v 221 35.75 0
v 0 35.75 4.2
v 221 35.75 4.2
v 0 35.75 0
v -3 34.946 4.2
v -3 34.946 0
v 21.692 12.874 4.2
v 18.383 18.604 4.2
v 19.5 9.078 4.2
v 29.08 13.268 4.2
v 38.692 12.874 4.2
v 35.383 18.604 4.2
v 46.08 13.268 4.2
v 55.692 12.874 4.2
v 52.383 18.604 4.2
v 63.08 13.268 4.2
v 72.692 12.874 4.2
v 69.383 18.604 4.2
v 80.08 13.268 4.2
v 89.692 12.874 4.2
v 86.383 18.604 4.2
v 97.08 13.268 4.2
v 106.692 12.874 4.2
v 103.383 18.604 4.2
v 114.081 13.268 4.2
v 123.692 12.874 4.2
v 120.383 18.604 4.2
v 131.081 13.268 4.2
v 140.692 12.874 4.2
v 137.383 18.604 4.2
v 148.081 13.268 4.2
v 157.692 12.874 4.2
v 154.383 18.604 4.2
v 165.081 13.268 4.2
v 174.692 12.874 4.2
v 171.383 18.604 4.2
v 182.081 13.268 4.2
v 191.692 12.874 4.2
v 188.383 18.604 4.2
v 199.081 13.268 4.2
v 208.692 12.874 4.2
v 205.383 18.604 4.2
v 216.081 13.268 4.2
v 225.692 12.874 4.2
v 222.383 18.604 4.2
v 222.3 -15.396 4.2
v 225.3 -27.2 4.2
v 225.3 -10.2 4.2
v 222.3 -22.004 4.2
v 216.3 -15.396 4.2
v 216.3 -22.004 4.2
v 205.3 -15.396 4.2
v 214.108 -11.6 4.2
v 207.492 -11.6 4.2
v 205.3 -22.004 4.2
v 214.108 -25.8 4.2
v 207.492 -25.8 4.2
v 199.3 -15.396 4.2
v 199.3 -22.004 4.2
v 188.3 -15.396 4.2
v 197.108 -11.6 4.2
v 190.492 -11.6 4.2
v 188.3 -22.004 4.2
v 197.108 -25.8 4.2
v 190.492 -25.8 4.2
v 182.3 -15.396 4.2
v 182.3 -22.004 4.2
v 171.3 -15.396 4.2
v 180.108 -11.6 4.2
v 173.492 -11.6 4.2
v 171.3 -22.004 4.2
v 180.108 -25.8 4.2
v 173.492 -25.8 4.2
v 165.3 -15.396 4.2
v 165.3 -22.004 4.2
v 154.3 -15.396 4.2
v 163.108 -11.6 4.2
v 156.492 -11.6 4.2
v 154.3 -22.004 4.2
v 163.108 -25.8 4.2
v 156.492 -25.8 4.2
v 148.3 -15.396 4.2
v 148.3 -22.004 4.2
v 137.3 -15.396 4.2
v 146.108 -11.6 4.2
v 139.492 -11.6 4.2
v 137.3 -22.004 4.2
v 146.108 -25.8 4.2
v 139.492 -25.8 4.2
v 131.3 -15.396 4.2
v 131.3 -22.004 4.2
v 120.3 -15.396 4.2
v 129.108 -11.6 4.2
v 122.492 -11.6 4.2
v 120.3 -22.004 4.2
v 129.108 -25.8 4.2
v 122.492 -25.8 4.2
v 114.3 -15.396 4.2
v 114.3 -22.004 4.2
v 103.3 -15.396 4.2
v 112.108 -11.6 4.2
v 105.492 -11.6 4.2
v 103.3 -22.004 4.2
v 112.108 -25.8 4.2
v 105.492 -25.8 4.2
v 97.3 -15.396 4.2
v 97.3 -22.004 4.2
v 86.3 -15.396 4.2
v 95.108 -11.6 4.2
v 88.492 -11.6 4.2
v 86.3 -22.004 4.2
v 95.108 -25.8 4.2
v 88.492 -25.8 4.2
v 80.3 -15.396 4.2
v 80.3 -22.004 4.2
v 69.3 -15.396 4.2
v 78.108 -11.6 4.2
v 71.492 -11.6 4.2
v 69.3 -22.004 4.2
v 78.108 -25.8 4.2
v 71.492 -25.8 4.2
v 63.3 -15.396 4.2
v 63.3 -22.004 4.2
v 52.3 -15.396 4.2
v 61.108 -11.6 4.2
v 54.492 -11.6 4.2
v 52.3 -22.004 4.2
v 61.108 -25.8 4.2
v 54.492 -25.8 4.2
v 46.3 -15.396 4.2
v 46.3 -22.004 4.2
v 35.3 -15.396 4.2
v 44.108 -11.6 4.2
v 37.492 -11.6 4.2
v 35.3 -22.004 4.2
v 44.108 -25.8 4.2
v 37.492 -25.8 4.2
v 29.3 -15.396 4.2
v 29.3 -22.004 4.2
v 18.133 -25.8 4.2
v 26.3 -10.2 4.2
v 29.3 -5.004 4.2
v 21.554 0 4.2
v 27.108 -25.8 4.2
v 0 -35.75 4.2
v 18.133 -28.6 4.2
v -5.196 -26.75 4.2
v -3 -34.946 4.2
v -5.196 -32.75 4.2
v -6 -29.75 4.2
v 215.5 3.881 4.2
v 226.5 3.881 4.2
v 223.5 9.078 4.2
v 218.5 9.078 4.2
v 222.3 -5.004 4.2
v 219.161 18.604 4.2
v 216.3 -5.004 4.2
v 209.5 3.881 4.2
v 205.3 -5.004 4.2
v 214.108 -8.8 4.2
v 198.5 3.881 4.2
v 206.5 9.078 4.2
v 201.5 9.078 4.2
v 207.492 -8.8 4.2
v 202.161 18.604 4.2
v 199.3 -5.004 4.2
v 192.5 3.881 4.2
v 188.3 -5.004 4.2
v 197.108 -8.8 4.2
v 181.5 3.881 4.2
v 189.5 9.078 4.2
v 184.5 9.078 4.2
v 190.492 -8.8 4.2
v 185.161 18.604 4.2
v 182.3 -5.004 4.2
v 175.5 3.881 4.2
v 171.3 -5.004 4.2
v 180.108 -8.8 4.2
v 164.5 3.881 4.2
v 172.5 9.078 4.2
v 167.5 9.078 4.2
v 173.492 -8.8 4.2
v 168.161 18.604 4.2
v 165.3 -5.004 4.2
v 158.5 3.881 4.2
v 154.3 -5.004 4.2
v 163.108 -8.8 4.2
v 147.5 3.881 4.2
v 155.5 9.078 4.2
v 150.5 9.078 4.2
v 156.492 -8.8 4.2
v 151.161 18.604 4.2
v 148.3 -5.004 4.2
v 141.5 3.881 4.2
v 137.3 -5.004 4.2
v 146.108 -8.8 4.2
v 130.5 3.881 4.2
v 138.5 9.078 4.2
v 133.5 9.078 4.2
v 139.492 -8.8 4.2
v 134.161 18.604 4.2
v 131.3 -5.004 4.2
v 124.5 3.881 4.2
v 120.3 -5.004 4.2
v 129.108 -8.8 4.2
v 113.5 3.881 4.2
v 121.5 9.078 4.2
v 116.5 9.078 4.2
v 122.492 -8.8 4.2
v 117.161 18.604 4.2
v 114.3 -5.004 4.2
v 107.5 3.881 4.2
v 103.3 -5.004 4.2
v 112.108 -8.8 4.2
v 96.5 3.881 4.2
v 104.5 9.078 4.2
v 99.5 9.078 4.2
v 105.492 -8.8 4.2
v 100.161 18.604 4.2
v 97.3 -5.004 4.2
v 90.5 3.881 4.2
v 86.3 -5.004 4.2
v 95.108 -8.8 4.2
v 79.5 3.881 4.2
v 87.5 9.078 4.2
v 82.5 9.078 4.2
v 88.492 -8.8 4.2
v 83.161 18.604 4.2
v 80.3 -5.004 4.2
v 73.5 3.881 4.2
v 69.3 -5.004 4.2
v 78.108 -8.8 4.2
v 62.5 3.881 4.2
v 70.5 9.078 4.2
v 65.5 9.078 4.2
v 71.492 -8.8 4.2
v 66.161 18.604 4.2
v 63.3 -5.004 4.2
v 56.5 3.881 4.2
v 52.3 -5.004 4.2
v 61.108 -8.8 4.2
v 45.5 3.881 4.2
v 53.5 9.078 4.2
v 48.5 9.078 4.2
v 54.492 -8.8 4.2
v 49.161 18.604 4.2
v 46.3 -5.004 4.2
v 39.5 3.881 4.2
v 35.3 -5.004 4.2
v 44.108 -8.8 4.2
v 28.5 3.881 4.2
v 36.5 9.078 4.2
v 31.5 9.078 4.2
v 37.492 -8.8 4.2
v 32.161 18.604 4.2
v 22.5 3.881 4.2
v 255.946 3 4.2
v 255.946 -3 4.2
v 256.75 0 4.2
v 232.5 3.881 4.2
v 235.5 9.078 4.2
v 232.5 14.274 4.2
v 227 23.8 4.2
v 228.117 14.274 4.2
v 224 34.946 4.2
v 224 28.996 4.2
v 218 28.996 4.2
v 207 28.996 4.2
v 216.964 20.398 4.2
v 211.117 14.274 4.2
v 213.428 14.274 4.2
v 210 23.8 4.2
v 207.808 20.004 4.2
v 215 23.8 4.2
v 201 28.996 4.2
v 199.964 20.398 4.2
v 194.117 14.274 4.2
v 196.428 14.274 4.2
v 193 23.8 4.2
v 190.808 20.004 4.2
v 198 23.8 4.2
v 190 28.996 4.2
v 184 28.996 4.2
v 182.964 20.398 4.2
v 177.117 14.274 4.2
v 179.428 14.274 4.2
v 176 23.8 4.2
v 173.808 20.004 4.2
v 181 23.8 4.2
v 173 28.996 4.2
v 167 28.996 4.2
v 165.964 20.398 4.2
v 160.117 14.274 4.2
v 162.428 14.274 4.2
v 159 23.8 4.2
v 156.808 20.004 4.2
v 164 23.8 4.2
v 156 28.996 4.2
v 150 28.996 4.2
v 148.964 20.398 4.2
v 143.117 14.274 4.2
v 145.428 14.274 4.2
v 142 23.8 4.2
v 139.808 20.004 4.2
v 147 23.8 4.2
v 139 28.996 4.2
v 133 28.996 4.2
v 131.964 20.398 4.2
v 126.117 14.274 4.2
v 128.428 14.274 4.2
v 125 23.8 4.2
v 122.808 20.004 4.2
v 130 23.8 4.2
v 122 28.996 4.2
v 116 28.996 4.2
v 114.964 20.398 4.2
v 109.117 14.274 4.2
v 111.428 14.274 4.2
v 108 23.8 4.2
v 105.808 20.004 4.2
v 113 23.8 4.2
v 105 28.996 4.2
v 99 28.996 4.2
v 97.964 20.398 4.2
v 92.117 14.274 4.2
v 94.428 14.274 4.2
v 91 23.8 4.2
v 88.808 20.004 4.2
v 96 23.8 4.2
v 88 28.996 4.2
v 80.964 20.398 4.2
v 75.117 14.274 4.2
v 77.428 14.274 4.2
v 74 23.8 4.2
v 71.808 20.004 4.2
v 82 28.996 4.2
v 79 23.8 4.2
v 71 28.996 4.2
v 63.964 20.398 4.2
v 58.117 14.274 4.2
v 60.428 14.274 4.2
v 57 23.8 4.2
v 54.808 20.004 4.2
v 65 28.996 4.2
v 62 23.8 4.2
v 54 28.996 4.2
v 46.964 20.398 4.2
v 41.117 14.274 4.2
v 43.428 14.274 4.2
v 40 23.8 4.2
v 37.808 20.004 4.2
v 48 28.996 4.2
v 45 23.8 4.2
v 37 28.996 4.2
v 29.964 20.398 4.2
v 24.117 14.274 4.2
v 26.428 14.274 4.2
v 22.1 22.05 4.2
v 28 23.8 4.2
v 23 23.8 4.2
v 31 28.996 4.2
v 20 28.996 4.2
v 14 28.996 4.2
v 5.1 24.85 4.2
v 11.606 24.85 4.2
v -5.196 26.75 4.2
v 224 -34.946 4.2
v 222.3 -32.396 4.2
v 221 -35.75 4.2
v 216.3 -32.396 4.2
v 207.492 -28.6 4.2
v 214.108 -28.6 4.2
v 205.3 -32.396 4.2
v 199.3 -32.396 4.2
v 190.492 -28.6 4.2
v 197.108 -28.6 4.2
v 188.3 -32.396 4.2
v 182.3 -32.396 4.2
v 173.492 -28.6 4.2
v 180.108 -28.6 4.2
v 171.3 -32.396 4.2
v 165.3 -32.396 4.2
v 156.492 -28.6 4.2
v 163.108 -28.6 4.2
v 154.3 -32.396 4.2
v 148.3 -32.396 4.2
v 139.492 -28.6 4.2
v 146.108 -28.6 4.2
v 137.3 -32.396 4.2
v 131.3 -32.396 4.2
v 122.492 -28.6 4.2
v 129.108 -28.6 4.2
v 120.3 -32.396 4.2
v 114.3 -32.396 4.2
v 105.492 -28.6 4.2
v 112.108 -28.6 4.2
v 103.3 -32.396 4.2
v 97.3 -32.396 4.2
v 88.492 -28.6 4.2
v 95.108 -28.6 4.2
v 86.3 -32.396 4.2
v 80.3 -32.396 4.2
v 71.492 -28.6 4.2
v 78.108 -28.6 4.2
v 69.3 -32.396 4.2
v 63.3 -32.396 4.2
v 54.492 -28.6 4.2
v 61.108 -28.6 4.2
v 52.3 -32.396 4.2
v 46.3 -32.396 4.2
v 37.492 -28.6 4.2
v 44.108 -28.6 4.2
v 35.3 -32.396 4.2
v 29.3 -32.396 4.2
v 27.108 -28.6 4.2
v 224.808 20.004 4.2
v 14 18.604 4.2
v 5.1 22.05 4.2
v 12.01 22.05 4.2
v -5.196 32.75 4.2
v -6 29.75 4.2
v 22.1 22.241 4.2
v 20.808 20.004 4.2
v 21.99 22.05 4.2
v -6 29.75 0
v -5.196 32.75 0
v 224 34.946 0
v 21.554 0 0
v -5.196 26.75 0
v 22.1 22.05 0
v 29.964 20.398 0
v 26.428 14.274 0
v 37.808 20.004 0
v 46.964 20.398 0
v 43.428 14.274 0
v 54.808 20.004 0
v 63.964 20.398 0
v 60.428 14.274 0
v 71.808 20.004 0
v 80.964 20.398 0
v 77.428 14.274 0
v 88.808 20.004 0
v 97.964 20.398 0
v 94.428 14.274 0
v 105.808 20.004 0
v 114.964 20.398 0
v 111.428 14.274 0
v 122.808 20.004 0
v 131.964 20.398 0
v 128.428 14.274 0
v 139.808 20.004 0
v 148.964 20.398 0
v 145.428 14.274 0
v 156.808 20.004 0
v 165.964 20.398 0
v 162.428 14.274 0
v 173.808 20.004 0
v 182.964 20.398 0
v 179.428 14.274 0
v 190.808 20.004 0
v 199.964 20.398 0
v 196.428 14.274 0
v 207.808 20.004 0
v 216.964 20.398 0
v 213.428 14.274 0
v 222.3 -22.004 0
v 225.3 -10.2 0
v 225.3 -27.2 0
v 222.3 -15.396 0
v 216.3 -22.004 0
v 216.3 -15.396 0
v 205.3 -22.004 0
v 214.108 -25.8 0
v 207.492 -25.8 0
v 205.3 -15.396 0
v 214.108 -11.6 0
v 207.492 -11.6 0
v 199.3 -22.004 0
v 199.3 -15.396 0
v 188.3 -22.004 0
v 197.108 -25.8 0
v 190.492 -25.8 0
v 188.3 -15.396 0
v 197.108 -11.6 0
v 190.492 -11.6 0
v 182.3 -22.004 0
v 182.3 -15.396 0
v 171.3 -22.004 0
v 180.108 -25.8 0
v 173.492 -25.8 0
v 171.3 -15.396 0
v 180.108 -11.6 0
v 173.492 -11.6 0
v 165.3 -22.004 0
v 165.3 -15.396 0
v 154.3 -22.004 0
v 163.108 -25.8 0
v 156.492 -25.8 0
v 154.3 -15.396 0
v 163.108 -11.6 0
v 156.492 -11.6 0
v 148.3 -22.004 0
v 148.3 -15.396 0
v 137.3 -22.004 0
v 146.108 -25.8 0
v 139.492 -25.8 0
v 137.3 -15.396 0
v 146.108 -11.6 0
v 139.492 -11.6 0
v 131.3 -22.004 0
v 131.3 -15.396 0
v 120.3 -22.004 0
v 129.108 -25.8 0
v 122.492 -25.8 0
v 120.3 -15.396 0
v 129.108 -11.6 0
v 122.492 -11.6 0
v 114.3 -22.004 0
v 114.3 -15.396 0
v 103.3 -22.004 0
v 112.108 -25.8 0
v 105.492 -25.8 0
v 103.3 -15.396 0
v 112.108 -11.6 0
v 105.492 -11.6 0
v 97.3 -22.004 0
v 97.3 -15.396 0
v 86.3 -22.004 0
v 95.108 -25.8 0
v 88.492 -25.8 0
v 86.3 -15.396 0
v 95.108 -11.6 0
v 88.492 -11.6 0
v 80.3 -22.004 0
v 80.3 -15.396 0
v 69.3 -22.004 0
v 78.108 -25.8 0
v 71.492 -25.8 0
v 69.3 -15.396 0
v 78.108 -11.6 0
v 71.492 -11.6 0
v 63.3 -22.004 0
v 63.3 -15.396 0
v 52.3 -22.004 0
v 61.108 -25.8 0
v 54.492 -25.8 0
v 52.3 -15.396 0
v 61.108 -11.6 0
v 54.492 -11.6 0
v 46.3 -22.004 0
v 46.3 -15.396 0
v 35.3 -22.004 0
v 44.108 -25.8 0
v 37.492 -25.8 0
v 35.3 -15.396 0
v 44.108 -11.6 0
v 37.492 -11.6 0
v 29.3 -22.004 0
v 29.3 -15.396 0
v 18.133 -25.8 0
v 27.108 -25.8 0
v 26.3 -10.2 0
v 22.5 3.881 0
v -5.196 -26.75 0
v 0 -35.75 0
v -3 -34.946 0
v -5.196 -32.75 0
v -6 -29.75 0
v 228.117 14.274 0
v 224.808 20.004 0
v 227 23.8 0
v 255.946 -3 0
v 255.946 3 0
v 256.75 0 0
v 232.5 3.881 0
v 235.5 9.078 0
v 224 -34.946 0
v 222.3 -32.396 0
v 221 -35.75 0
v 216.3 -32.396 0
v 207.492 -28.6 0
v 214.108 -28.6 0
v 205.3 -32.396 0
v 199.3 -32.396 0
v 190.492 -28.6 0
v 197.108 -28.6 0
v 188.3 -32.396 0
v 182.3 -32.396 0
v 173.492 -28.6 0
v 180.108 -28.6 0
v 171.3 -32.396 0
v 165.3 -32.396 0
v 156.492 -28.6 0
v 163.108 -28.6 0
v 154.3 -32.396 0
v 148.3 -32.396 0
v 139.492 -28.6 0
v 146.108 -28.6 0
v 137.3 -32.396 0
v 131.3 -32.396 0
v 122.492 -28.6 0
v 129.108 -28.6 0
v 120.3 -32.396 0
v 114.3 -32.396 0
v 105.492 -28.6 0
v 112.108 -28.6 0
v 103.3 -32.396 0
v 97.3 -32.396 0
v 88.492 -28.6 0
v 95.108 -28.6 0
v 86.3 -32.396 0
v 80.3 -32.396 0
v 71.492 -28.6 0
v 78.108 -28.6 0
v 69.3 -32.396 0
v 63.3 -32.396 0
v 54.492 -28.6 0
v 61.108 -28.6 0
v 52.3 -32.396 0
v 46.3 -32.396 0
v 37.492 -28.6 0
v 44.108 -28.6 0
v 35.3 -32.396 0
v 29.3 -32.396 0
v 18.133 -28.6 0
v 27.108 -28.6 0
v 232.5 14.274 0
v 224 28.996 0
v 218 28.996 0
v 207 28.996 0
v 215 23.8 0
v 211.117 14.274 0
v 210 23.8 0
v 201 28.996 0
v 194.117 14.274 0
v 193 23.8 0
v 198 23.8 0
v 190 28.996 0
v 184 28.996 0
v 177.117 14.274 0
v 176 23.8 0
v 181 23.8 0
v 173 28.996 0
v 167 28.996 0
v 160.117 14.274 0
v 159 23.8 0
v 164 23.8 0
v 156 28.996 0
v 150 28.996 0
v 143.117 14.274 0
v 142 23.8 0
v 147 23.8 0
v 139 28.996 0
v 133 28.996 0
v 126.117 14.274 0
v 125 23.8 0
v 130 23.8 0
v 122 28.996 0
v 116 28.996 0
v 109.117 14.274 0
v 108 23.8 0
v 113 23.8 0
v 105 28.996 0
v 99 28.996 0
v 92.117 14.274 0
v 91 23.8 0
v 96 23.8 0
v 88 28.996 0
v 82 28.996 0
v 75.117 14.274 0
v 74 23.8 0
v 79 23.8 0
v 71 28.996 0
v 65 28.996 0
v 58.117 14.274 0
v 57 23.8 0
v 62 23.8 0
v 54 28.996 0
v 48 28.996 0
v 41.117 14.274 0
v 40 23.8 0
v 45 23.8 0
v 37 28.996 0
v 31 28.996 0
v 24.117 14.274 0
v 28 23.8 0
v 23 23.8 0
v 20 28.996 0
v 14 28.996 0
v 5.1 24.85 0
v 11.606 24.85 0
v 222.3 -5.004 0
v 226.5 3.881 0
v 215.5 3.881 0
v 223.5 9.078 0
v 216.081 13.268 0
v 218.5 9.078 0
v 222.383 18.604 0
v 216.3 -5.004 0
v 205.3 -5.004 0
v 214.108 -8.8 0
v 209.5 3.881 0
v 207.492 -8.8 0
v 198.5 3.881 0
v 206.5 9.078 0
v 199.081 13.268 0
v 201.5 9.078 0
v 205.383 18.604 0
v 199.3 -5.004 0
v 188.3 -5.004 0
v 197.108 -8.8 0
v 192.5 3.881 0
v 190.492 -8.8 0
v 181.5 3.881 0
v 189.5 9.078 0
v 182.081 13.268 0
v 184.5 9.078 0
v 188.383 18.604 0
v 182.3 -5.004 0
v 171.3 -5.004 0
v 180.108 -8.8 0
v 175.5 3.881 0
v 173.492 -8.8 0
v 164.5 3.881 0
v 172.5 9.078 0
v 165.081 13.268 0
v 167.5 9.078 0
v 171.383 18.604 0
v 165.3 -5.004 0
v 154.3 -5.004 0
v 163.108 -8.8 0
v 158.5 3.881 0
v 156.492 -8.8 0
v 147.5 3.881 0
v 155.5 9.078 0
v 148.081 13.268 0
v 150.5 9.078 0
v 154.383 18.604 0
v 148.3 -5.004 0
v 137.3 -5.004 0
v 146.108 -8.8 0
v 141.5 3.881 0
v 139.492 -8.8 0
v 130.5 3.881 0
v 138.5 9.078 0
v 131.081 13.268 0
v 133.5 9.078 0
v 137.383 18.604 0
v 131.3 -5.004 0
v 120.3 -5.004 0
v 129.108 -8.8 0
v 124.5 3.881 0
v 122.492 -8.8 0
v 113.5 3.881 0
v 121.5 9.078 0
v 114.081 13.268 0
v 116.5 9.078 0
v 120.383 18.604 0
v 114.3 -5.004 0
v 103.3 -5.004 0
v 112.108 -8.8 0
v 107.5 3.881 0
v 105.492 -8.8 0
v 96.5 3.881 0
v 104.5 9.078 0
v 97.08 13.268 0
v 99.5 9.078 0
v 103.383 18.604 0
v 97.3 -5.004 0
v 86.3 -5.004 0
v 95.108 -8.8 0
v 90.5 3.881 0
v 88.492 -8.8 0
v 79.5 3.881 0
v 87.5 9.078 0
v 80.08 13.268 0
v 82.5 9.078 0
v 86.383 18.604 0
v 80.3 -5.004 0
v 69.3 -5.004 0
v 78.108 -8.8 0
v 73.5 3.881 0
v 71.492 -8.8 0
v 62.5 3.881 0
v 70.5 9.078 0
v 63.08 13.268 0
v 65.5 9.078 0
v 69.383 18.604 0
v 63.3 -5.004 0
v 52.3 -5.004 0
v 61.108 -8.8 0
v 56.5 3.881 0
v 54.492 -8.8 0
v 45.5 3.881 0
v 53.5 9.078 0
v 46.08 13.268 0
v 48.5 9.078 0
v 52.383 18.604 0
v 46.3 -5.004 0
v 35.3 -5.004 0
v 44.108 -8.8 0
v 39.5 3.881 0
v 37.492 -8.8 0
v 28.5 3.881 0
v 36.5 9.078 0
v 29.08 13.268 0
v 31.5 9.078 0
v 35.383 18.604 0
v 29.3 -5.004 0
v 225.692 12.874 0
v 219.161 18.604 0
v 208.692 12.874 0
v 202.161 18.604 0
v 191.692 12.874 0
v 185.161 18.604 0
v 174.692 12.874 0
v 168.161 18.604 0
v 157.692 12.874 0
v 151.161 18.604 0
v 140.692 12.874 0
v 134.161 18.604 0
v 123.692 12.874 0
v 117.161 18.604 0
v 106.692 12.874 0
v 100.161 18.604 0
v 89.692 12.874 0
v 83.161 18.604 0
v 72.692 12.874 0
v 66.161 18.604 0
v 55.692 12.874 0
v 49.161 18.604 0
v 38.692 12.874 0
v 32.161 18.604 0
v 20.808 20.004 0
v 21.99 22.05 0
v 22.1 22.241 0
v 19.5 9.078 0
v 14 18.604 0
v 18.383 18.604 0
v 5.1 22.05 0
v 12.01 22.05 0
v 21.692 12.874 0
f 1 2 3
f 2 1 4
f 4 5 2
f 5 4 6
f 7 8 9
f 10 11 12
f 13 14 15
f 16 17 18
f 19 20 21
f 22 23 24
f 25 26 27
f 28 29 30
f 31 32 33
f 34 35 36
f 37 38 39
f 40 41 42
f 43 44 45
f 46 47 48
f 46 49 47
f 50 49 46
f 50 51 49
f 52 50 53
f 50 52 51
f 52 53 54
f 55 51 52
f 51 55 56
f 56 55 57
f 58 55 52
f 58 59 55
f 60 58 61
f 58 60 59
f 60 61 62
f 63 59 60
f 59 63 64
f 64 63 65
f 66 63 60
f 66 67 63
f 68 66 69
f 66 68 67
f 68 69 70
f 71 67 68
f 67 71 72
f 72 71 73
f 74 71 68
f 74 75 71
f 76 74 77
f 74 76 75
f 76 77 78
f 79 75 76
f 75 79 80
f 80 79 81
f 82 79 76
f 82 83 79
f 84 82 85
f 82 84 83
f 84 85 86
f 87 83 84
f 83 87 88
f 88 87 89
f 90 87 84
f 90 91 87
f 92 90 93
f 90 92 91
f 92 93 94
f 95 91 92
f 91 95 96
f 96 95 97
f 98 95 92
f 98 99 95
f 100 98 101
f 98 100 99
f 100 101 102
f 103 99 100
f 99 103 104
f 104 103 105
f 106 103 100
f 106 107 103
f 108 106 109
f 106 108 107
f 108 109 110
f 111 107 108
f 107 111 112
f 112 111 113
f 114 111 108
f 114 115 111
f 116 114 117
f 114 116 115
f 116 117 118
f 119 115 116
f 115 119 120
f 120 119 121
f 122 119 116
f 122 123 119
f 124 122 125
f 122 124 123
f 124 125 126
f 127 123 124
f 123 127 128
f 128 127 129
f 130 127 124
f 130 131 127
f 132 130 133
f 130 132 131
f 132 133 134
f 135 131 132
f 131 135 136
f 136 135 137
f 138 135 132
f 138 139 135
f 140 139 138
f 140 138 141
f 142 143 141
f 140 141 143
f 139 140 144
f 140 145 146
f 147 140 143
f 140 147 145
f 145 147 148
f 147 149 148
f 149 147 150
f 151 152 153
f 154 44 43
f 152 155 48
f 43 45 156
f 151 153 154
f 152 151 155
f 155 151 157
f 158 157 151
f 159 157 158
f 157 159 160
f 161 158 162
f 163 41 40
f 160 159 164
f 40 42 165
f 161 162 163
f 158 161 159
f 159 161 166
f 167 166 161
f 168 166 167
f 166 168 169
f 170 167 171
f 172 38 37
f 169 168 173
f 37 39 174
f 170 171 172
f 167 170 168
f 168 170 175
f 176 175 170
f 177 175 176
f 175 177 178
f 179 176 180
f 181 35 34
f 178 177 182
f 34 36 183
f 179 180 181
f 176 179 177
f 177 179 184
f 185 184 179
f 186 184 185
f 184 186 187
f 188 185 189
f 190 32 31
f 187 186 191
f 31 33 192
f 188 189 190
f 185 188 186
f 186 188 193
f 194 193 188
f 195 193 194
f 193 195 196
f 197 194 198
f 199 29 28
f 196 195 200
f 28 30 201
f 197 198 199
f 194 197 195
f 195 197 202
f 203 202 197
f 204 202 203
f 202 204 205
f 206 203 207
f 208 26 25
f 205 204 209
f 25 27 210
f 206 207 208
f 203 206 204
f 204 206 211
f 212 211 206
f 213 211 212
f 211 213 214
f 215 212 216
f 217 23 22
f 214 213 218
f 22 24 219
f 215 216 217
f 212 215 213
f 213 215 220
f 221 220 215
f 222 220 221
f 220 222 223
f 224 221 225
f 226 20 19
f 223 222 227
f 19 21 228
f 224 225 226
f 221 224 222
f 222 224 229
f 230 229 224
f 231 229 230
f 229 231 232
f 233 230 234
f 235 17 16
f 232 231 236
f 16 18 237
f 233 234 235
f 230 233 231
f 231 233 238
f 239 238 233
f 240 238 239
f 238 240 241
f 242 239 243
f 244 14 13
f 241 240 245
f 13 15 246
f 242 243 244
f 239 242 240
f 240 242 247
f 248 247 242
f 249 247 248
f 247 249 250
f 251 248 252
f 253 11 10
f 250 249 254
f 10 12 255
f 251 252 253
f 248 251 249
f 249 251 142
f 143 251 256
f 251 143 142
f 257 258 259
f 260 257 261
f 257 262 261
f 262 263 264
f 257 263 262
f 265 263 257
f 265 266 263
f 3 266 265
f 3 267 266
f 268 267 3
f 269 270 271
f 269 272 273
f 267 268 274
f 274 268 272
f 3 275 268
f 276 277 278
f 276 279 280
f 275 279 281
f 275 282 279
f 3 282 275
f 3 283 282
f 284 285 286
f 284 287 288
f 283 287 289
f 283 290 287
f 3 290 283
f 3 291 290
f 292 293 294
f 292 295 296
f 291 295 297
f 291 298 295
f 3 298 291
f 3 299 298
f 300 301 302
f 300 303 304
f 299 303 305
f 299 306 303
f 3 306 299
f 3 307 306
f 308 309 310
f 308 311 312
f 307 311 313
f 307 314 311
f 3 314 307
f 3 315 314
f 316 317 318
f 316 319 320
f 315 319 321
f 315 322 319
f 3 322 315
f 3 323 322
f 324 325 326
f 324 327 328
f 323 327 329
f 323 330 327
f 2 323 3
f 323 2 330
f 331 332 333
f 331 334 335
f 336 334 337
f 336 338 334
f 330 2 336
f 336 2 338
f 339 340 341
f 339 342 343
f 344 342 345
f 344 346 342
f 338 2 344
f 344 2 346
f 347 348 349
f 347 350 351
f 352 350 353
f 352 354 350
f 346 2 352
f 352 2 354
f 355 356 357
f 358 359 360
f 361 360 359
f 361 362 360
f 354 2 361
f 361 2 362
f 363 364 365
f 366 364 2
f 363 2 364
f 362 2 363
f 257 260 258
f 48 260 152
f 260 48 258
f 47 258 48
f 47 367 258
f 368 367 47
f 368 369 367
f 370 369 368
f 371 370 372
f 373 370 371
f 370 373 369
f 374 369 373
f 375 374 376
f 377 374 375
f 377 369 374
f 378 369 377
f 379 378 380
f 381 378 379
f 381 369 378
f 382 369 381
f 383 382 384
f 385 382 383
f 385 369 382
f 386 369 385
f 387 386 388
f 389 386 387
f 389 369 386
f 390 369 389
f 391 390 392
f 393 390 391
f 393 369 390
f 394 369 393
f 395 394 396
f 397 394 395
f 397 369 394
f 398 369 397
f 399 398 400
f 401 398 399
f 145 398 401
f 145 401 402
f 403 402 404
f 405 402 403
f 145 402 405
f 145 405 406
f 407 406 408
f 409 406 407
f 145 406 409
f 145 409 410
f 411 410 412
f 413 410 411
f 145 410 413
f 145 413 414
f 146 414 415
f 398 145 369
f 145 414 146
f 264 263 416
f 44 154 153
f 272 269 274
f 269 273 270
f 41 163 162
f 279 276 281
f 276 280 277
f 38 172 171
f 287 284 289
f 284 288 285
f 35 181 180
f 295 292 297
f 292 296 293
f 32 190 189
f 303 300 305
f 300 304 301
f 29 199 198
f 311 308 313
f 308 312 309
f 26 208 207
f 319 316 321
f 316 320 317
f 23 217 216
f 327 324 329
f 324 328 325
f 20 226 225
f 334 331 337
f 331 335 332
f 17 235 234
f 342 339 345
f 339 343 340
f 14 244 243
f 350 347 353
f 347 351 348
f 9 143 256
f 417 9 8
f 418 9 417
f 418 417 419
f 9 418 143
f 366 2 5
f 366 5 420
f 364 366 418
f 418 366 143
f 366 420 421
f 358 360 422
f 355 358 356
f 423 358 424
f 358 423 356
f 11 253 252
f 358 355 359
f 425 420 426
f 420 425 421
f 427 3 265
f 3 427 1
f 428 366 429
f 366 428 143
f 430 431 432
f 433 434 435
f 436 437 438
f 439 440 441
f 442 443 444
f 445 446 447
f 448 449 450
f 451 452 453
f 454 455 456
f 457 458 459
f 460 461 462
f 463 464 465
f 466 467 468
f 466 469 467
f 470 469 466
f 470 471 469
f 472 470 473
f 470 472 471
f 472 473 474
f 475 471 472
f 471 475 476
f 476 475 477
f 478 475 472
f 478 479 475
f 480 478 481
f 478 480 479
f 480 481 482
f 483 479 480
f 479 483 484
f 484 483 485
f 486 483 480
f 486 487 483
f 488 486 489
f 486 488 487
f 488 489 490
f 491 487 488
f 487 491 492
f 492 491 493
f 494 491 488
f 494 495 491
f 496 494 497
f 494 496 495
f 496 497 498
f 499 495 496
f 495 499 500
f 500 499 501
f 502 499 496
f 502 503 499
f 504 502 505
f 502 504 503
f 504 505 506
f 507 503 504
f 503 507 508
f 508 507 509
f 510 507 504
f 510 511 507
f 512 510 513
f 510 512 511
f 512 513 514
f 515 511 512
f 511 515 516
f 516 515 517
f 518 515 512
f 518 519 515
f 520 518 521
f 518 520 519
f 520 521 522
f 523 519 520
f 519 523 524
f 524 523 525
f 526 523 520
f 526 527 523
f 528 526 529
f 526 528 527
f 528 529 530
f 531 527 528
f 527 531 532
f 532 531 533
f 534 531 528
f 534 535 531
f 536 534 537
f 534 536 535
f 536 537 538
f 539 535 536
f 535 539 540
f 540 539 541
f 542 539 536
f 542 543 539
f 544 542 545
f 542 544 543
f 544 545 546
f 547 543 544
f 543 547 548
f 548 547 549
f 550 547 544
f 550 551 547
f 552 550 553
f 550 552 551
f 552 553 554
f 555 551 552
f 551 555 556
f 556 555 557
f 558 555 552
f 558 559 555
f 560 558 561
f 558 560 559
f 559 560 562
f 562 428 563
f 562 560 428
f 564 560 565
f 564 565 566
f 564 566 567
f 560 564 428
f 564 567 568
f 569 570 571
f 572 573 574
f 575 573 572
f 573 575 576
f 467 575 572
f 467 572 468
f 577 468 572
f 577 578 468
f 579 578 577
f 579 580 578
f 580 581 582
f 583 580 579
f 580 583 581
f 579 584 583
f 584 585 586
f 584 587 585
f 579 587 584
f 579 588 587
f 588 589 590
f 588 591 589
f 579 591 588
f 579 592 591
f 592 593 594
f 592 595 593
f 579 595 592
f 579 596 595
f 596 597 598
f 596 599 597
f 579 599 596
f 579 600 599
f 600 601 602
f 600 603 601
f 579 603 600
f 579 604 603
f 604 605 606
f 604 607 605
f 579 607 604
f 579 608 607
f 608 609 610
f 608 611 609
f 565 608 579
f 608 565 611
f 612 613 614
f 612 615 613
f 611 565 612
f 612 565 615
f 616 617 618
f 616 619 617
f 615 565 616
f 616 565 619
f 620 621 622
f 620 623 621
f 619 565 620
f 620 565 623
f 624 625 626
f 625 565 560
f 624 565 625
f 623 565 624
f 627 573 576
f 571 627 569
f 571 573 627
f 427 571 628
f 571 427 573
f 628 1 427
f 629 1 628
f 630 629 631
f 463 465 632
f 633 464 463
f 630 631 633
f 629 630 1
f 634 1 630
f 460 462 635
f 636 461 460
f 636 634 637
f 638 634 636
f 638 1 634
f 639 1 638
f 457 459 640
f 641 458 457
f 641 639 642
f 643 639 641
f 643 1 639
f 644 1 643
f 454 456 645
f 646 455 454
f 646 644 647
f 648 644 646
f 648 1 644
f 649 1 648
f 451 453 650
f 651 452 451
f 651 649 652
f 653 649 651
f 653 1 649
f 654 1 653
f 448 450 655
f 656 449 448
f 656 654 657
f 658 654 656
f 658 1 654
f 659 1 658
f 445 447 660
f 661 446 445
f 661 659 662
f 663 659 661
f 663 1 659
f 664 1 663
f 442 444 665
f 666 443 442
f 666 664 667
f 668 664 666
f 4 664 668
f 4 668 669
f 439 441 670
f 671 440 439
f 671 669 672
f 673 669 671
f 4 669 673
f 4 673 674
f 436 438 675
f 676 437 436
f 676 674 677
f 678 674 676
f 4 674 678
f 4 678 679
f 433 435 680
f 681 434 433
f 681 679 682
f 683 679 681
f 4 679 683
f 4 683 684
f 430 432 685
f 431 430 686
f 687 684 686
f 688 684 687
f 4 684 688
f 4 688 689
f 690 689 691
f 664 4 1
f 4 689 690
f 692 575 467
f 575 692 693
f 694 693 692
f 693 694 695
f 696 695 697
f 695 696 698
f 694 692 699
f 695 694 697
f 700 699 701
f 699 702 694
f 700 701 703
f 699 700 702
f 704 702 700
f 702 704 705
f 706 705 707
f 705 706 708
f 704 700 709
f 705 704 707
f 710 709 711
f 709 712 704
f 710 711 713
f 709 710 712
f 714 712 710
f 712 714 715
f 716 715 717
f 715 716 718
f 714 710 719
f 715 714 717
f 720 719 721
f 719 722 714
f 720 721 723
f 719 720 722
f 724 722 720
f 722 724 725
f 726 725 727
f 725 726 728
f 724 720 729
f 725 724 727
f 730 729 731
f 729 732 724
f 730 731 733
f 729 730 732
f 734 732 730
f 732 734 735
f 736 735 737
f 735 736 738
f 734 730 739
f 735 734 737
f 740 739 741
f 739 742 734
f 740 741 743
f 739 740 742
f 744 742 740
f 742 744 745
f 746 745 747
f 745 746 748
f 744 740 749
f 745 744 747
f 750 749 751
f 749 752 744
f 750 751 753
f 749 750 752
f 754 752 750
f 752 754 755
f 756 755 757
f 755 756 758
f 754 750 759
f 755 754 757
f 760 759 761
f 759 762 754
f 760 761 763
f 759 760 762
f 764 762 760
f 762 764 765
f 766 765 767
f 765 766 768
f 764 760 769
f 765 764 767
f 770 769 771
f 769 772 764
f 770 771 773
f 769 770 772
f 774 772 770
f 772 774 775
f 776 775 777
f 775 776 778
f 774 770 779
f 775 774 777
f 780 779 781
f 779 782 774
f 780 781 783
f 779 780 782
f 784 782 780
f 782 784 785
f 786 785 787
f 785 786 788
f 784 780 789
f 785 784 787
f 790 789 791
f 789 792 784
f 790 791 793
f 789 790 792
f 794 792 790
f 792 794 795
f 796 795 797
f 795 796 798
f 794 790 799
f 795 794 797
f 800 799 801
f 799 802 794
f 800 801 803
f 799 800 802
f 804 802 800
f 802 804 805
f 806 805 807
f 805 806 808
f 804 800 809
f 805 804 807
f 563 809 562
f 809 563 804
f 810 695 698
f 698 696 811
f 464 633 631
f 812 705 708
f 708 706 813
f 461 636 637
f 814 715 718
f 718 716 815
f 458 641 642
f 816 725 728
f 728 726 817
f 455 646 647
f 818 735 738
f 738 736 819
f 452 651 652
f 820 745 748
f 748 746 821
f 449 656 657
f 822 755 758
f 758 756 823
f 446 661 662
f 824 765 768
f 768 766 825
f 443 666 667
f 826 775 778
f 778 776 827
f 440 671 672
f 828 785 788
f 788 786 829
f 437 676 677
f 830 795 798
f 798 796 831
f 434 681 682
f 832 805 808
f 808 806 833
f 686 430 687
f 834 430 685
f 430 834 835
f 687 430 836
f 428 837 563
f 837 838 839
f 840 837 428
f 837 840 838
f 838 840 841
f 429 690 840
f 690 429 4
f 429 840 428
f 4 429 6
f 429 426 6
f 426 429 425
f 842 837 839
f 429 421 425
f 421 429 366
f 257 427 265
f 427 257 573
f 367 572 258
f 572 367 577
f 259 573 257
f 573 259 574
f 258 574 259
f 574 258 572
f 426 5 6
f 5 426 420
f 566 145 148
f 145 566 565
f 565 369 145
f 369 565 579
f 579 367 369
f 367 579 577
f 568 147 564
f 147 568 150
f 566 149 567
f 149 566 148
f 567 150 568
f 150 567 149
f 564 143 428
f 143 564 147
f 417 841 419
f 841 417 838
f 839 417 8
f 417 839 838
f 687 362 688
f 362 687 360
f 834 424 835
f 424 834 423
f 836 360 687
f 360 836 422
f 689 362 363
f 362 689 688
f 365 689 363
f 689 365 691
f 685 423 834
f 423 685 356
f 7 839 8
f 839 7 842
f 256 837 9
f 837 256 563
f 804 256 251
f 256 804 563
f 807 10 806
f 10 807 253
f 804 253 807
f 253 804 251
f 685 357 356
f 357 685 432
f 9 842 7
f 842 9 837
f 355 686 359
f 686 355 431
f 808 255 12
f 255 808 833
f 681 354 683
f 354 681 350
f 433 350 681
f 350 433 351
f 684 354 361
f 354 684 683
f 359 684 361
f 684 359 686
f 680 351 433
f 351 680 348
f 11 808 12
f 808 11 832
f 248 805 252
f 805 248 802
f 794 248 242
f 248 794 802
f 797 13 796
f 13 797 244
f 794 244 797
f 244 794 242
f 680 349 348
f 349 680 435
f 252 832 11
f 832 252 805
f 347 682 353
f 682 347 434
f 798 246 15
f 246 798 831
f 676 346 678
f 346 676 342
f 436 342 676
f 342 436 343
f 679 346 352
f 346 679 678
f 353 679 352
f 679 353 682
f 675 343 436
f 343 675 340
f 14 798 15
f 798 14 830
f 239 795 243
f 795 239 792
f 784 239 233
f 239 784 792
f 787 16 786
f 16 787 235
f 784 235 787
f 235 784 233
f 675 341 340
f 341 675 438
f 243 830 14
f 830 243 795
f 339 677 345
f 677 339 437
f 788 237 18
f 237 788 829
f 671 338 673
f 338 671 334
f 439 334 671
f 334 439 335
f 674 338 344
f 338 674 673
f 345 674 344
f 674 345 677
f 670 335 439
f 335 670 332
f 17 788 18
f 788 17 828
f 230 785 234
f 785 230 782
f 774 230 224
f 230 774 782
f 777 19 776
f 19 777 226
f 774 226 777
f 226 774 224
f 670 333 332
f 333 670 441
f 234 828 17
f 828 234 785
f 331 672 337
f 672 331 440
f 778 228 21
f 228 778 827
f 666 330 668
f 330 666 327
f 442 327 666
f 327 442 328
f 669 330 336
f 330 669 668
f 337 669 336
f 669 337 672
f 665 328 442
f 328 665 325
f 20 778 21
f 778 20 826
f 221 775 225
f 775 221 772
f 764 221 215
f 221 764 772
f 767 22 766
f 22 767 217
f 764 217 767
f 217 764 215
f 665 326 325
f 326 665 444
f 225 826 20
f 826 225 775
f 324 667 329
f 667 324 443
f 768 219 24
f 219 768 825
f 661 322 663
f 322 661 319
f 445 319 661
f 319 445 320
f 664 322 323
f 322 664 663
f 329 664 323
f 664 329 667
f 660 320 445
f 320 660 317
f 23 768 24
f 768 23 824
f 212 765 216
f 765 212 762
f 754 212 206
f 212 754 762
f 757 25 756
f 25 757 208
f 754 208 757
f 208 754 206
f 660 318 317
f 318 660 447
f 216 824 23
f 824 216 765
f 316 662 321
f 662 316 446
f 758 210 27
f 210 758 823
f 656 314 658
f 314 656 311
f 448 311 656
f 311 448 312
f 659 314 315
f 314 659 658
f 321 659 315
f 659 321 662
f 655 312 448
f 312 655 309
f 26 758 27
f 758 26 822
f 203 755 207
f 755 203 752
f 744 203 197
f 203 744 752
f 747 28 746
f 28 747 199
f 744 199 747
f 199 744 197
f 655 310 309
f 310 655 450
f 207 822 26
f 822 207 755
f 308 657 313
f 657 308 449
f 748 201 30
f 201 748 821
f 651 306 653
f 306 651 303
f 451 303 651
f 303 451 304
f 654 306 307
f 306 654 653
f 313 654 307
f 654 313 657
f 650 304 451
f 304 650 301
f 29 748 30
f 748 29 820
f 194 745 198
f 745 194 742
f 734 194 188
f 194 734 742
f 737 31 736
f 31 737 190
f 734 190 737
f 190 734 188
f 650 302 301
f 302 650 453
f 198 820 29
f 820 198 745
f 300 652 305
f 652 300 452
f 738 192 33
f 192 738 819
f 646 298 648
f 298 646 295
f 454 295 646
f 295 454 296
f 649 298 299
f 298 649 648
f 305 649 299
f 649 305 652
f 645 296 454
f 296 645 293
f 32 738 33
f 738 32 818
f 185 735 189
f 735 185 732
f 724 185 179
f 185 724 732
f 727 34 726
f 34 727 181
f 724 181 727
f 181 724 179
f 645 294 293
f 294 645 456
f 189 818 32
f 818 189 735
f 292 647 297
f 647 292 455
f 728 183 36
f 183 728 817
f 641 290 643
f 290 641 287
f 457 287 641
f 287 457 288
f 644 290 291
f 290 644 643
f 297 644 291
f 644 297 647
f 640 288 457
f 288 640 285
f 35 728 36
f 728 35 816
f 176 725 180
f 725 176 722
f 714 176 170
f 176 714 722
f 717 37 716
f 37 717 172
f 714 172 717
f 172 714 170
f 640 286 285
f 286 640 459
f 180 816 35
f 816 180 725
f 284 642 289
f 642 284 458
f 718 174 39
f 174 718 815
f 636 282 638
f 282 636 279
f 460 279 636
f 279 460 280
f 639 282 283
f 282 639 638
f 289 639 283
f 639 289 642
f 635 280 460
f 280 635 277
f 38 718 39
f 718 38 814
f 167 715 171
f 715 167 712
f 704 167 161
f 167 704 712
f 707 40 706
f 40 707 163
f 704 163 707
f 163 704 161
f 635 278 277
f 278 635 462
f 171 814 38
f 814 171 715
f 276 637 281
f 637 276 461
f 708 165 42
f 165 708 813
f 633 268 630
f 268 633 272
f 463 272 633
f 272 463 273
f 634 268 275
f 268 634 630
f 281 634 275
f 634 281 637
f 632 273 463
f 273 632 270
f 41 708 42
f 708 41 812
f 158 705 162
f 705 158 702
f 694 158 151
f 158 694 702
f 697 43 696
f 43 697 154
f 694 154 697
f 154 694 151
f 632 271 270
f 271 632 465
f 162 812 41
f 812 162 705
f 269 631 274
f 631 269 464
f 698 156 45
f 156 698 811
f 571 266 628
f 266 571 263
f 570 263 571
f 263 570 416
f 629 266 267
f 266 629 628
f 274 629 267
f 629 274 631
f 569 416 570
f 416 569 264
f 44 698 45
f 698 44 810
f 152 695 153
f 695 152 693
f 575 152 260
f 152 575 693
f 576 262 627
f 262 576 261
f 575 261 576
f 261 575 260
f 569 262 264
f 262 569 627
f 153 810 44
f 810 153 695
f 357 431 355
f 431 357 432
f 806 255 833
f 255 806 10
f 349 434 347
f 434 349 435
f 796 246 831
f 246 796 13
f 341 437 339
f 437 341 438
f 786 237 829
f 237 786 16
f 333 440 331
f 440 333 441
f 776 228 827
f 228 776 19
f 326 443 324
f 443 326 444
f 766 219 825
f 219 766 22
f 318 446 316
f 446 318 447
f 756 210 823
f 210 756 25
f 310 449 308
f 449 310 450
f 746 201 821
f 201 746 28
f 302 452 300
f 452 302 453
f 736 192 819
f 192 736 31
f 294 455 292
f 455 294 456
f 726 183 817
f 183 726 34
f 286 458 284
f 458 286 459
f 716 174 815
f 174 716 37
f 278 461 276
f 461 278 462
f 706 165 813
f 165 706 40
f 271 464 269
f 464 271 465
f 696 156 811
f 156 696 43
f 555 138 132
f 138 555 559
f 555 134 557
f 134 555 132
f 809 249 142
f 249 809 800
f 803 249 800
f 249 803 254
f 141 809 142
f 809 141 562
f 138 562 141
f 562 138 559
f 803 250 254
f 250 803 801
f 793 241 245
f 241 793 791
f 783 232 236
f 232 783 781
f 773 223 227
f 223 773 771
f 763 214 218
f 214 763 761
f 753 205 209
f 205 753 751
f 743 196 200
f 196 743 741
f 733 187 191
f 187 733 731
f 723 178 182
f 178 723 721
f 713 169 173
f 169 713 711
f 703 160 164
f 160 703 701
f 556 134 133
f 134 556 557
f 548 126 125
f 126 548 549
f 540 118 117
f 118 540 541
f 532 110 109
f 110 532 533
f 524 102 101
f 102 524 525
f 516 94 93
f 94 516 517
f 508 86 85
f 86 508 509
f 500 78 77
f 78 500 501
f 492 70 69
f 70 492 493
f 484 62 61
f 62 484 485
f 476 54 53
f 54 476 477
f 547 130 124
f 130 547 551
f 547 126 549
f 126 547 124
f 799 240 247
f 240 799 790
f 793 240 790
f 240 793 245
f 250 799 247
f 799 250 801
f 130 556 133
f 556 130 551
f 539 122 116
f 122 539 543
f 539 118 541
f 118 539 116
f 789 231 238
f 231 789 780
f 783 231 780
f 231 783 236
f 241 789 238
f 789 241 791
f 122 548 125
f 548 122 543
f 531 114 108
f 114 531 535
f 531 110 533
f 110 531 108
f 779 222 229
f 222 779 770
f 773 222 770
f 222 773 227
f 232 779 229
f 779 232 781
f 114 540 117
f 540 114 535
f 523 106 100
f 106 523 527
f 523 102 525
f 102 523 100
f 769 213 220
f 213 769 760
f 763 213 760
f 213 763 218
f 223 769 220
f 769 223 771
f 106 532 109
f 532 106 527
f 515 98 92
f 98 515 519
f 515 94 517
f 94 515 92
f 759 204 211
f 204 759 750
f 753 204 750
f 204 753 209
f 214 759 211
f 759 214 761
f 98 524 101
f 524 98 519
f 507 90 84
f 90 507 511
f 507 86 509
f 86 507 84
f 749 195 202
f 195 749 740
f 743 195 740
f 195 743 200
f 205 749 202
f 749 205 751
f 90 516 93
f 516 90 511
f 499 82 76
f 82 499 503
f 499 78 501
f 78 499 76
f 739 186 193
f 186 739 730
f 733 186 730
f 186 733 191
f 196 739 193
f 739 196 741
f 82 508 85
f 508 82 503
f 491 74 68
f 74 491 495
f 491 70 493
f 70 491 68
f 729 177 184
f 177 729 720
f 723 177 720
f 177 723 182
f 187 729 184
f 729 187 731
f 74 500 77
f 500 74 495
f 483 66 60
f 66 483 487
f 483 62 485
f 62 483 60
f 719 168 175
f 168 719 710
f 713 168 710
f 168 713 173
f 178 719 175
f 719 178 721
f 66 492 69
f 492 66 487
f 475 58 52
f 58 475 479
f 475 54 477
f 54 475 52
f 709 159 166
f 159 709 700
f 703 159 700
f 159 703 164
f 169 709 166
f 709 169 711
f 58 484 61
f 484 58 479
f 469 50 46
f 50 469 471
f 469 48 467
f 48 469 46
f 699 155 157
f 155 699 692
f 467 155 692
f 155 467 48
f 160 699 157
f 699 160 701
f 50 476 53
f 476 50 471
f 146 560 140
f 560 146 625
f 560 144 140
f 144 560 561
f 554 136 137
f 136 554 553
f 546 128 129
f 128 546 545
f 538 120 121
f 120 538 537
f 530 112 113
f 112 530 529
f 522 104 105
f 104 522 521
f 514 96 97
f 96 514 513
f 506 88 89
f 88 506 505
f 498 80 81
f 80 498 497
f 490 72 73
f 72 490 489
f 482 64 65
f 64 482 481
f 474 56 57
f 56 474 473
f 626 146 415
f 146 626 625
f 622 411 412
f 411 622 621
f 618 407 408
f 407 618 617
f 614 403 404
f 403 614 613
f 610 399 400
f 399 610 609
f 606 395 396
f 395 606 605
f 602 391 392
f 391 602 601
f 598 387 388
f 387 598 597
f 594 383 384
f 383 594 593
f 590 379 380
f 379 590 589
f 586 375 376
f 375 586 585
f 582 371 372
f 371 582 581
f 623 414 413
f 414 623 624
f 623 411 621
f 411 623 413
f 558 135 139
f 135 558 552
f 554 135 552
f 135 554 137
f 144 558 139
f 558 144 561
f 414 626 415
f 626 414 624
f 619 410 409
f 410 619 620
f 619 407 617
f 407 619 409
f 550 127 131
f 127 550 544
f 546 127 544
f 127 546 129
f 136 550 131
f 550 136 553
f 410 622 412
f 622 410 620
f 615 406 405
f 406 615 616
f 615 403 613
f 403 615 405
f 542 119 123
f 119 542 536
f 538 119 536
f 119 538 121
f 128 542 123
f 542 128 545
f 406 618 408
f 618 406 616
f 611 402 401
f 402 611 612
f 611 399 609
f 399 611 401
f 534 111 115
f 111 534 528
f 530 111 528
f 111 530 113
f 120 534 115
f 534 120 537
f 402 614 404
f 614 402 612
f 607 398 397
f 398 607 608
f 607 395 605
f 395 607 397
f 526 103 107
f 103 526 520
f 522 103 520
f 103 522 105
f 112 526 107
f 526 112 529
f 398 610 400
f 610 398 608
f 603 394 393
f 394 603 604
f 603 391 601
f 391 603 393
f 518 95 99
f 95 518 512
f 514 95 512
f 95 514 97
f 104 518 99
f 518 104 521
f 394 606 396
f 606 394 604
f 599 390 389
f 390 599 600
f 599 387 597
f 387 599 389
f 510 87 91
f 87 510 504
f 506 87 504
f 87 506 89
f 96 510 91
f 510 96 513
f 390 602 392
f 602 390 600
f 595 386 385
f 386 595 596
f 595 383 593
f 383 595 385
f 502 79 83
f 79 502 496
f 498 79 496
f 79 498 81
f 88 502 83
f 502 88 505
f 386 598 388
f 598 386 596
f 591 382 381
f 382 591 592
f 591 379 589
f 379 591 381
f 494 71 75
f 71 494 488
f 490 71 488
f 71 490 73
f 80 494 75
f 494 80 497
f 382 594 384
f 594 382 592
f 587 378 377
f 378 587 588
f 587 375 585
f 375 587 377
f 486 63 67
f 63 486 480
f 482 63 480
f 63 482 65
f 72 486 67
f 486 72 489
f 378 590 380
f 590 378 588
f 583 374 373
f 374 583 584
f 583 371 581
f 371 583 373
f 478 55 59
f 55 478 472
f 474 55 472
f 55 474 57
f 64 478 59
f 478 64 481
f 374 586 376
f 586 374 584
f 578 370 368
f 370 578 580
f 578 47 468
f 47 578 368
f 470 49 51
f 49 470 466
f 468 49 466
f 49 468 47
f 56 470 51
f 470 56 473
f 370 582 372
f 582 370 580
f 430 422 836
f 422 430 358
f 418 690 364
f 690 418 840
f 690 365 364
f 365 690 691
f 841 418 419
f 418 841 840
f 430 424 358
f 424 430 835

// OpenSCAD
//
// initiative.scad
//

$fn=6;

//use <cadence.scad>;


// unit is mm


baldia = 17; // ball diameter
holdia = 12; // hole diameter
holrad = holdia / 2;
holdis = baldia; // hole distance, center to center
holdisc = baldia * 0.77;
//holdis1 = baldia * 1.3;
//trkdis = baldia * 1.11; // distance between the two tracks

//rad = 3.5 * baldia;
twi = 2.8; // track width
//out = rad * 0.65; // outcentering...

holcnt = 11; // hole count

hei = 4.2; // height
h4 = hei / 4;

boalen = (holcnt + 2) * baldia; // board length
boawid = baldia * 3.5;

bw2 = boawid / 2;


module base() {

  hull() {
    translate([ bw2, 0, 0 ]) cylinder(d=holdia, h=hei, $fn=12);
    translate([ boalen + bw2, 0, 0 ]) cylinder(d=holdia, h=hei, $fn=12);
    translate([ 0, bw2, 0 ]) cylinder(d=holdia, h=hei, $fn=12);
    translate([ boalen, bw2, 0 ]) cylinder(d=holdia, h=hei, $fn=12);
  }
  hull() {
    translate([ bw2, 0, 0 ]) cylinder(d=holdia, h=hei, $fn=12);
    translate([ boalen + bw2, 0, 0 ]) cylinder(d=holdia, h=hei, $fn=12);
    translate([ 0, -bw2, 0 ]) cylinder(d=holdia, h=hei, $fn=12);
    translate([ boalen, -bw2, 0 ]) cylinder(d=holdia, h=hei, $fn=12);
  }
}

module cyl() {
  translate([ 0, 0, -h4 ]) cylinder(d=holdia, h=hei * 2);
}
module fur(dis=holdis) { // furrow
  translate([ 0, 0, h4 ]) cube(size=[ dis, twi, hei * 2 ], center=true);
}

module track(cnt, dis=holdis, furrows=true, startFurrow=false, endFurrow=false) {
  for(i = [0:cnt - 1]) {
    if (i == 0 && startFurrow) translate([ -dis / 3, 0, 0 ]) fur(dis);
    translate([ i * dis, 0, 0 ]) cyl();
    if (i < cnt - 1 || endFurrow) translate([ i * dis + dis / 2, 0, 0 ]) fur(dis);
  }
}

difference() {

  base();

  // rounds track

  for(i = [0:12]) {
    translate([ holdis + i * holdis, holdis * 1.4, 0 ])
      rotate([ 0, 0, -60 ])
        track(2);
  }
  for(i = [1:12]) {
    translate([ holdis * 0.8 + i * holdis, holdis * 1.1, 0 ])
      rotate([ 0, 0, 60])
        fur();
  }
  translate([ holdis * 0.8, bw2 - baldia * 0.3 - 1.2, 0 ])
    fur();
  //translate([ holdis * (holcnt + 2.8), bw2 - baldia * 0.3 - holdis + 1.4, 0 ])
  //  fur();

  // initiative track

  translate([ holdis * 1.9, -holdis * 0.6, 0 ])
    track(12);

  // turn track

  translate([ holdis * 1.9, -holdis * 1.6, 0 ])
    track(12, startFurrow=true);
}
